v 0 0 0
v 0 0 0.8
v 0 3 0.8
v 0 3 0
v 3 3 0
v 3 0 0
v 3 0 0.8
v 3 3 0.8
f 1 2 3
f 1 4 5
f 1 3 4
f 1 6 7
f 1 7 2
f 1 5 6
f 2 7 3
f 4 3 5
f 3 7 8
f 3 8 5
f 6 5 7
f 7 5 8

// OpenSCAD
/* Warning, this is a very basic generator with a lot of approximation 
input data : [WDFN, UQX, 3x3x0.8mm, 8, , A, C04-00291A]
generated by com.zoubworld.electronics.cad.model3d.Basic
Date : Sun Feb 15 10:50:48 CET 2026
*/

//body
color("black")
translate([0,0,0])
cube([3.0,3.0,0.8], center=false);
